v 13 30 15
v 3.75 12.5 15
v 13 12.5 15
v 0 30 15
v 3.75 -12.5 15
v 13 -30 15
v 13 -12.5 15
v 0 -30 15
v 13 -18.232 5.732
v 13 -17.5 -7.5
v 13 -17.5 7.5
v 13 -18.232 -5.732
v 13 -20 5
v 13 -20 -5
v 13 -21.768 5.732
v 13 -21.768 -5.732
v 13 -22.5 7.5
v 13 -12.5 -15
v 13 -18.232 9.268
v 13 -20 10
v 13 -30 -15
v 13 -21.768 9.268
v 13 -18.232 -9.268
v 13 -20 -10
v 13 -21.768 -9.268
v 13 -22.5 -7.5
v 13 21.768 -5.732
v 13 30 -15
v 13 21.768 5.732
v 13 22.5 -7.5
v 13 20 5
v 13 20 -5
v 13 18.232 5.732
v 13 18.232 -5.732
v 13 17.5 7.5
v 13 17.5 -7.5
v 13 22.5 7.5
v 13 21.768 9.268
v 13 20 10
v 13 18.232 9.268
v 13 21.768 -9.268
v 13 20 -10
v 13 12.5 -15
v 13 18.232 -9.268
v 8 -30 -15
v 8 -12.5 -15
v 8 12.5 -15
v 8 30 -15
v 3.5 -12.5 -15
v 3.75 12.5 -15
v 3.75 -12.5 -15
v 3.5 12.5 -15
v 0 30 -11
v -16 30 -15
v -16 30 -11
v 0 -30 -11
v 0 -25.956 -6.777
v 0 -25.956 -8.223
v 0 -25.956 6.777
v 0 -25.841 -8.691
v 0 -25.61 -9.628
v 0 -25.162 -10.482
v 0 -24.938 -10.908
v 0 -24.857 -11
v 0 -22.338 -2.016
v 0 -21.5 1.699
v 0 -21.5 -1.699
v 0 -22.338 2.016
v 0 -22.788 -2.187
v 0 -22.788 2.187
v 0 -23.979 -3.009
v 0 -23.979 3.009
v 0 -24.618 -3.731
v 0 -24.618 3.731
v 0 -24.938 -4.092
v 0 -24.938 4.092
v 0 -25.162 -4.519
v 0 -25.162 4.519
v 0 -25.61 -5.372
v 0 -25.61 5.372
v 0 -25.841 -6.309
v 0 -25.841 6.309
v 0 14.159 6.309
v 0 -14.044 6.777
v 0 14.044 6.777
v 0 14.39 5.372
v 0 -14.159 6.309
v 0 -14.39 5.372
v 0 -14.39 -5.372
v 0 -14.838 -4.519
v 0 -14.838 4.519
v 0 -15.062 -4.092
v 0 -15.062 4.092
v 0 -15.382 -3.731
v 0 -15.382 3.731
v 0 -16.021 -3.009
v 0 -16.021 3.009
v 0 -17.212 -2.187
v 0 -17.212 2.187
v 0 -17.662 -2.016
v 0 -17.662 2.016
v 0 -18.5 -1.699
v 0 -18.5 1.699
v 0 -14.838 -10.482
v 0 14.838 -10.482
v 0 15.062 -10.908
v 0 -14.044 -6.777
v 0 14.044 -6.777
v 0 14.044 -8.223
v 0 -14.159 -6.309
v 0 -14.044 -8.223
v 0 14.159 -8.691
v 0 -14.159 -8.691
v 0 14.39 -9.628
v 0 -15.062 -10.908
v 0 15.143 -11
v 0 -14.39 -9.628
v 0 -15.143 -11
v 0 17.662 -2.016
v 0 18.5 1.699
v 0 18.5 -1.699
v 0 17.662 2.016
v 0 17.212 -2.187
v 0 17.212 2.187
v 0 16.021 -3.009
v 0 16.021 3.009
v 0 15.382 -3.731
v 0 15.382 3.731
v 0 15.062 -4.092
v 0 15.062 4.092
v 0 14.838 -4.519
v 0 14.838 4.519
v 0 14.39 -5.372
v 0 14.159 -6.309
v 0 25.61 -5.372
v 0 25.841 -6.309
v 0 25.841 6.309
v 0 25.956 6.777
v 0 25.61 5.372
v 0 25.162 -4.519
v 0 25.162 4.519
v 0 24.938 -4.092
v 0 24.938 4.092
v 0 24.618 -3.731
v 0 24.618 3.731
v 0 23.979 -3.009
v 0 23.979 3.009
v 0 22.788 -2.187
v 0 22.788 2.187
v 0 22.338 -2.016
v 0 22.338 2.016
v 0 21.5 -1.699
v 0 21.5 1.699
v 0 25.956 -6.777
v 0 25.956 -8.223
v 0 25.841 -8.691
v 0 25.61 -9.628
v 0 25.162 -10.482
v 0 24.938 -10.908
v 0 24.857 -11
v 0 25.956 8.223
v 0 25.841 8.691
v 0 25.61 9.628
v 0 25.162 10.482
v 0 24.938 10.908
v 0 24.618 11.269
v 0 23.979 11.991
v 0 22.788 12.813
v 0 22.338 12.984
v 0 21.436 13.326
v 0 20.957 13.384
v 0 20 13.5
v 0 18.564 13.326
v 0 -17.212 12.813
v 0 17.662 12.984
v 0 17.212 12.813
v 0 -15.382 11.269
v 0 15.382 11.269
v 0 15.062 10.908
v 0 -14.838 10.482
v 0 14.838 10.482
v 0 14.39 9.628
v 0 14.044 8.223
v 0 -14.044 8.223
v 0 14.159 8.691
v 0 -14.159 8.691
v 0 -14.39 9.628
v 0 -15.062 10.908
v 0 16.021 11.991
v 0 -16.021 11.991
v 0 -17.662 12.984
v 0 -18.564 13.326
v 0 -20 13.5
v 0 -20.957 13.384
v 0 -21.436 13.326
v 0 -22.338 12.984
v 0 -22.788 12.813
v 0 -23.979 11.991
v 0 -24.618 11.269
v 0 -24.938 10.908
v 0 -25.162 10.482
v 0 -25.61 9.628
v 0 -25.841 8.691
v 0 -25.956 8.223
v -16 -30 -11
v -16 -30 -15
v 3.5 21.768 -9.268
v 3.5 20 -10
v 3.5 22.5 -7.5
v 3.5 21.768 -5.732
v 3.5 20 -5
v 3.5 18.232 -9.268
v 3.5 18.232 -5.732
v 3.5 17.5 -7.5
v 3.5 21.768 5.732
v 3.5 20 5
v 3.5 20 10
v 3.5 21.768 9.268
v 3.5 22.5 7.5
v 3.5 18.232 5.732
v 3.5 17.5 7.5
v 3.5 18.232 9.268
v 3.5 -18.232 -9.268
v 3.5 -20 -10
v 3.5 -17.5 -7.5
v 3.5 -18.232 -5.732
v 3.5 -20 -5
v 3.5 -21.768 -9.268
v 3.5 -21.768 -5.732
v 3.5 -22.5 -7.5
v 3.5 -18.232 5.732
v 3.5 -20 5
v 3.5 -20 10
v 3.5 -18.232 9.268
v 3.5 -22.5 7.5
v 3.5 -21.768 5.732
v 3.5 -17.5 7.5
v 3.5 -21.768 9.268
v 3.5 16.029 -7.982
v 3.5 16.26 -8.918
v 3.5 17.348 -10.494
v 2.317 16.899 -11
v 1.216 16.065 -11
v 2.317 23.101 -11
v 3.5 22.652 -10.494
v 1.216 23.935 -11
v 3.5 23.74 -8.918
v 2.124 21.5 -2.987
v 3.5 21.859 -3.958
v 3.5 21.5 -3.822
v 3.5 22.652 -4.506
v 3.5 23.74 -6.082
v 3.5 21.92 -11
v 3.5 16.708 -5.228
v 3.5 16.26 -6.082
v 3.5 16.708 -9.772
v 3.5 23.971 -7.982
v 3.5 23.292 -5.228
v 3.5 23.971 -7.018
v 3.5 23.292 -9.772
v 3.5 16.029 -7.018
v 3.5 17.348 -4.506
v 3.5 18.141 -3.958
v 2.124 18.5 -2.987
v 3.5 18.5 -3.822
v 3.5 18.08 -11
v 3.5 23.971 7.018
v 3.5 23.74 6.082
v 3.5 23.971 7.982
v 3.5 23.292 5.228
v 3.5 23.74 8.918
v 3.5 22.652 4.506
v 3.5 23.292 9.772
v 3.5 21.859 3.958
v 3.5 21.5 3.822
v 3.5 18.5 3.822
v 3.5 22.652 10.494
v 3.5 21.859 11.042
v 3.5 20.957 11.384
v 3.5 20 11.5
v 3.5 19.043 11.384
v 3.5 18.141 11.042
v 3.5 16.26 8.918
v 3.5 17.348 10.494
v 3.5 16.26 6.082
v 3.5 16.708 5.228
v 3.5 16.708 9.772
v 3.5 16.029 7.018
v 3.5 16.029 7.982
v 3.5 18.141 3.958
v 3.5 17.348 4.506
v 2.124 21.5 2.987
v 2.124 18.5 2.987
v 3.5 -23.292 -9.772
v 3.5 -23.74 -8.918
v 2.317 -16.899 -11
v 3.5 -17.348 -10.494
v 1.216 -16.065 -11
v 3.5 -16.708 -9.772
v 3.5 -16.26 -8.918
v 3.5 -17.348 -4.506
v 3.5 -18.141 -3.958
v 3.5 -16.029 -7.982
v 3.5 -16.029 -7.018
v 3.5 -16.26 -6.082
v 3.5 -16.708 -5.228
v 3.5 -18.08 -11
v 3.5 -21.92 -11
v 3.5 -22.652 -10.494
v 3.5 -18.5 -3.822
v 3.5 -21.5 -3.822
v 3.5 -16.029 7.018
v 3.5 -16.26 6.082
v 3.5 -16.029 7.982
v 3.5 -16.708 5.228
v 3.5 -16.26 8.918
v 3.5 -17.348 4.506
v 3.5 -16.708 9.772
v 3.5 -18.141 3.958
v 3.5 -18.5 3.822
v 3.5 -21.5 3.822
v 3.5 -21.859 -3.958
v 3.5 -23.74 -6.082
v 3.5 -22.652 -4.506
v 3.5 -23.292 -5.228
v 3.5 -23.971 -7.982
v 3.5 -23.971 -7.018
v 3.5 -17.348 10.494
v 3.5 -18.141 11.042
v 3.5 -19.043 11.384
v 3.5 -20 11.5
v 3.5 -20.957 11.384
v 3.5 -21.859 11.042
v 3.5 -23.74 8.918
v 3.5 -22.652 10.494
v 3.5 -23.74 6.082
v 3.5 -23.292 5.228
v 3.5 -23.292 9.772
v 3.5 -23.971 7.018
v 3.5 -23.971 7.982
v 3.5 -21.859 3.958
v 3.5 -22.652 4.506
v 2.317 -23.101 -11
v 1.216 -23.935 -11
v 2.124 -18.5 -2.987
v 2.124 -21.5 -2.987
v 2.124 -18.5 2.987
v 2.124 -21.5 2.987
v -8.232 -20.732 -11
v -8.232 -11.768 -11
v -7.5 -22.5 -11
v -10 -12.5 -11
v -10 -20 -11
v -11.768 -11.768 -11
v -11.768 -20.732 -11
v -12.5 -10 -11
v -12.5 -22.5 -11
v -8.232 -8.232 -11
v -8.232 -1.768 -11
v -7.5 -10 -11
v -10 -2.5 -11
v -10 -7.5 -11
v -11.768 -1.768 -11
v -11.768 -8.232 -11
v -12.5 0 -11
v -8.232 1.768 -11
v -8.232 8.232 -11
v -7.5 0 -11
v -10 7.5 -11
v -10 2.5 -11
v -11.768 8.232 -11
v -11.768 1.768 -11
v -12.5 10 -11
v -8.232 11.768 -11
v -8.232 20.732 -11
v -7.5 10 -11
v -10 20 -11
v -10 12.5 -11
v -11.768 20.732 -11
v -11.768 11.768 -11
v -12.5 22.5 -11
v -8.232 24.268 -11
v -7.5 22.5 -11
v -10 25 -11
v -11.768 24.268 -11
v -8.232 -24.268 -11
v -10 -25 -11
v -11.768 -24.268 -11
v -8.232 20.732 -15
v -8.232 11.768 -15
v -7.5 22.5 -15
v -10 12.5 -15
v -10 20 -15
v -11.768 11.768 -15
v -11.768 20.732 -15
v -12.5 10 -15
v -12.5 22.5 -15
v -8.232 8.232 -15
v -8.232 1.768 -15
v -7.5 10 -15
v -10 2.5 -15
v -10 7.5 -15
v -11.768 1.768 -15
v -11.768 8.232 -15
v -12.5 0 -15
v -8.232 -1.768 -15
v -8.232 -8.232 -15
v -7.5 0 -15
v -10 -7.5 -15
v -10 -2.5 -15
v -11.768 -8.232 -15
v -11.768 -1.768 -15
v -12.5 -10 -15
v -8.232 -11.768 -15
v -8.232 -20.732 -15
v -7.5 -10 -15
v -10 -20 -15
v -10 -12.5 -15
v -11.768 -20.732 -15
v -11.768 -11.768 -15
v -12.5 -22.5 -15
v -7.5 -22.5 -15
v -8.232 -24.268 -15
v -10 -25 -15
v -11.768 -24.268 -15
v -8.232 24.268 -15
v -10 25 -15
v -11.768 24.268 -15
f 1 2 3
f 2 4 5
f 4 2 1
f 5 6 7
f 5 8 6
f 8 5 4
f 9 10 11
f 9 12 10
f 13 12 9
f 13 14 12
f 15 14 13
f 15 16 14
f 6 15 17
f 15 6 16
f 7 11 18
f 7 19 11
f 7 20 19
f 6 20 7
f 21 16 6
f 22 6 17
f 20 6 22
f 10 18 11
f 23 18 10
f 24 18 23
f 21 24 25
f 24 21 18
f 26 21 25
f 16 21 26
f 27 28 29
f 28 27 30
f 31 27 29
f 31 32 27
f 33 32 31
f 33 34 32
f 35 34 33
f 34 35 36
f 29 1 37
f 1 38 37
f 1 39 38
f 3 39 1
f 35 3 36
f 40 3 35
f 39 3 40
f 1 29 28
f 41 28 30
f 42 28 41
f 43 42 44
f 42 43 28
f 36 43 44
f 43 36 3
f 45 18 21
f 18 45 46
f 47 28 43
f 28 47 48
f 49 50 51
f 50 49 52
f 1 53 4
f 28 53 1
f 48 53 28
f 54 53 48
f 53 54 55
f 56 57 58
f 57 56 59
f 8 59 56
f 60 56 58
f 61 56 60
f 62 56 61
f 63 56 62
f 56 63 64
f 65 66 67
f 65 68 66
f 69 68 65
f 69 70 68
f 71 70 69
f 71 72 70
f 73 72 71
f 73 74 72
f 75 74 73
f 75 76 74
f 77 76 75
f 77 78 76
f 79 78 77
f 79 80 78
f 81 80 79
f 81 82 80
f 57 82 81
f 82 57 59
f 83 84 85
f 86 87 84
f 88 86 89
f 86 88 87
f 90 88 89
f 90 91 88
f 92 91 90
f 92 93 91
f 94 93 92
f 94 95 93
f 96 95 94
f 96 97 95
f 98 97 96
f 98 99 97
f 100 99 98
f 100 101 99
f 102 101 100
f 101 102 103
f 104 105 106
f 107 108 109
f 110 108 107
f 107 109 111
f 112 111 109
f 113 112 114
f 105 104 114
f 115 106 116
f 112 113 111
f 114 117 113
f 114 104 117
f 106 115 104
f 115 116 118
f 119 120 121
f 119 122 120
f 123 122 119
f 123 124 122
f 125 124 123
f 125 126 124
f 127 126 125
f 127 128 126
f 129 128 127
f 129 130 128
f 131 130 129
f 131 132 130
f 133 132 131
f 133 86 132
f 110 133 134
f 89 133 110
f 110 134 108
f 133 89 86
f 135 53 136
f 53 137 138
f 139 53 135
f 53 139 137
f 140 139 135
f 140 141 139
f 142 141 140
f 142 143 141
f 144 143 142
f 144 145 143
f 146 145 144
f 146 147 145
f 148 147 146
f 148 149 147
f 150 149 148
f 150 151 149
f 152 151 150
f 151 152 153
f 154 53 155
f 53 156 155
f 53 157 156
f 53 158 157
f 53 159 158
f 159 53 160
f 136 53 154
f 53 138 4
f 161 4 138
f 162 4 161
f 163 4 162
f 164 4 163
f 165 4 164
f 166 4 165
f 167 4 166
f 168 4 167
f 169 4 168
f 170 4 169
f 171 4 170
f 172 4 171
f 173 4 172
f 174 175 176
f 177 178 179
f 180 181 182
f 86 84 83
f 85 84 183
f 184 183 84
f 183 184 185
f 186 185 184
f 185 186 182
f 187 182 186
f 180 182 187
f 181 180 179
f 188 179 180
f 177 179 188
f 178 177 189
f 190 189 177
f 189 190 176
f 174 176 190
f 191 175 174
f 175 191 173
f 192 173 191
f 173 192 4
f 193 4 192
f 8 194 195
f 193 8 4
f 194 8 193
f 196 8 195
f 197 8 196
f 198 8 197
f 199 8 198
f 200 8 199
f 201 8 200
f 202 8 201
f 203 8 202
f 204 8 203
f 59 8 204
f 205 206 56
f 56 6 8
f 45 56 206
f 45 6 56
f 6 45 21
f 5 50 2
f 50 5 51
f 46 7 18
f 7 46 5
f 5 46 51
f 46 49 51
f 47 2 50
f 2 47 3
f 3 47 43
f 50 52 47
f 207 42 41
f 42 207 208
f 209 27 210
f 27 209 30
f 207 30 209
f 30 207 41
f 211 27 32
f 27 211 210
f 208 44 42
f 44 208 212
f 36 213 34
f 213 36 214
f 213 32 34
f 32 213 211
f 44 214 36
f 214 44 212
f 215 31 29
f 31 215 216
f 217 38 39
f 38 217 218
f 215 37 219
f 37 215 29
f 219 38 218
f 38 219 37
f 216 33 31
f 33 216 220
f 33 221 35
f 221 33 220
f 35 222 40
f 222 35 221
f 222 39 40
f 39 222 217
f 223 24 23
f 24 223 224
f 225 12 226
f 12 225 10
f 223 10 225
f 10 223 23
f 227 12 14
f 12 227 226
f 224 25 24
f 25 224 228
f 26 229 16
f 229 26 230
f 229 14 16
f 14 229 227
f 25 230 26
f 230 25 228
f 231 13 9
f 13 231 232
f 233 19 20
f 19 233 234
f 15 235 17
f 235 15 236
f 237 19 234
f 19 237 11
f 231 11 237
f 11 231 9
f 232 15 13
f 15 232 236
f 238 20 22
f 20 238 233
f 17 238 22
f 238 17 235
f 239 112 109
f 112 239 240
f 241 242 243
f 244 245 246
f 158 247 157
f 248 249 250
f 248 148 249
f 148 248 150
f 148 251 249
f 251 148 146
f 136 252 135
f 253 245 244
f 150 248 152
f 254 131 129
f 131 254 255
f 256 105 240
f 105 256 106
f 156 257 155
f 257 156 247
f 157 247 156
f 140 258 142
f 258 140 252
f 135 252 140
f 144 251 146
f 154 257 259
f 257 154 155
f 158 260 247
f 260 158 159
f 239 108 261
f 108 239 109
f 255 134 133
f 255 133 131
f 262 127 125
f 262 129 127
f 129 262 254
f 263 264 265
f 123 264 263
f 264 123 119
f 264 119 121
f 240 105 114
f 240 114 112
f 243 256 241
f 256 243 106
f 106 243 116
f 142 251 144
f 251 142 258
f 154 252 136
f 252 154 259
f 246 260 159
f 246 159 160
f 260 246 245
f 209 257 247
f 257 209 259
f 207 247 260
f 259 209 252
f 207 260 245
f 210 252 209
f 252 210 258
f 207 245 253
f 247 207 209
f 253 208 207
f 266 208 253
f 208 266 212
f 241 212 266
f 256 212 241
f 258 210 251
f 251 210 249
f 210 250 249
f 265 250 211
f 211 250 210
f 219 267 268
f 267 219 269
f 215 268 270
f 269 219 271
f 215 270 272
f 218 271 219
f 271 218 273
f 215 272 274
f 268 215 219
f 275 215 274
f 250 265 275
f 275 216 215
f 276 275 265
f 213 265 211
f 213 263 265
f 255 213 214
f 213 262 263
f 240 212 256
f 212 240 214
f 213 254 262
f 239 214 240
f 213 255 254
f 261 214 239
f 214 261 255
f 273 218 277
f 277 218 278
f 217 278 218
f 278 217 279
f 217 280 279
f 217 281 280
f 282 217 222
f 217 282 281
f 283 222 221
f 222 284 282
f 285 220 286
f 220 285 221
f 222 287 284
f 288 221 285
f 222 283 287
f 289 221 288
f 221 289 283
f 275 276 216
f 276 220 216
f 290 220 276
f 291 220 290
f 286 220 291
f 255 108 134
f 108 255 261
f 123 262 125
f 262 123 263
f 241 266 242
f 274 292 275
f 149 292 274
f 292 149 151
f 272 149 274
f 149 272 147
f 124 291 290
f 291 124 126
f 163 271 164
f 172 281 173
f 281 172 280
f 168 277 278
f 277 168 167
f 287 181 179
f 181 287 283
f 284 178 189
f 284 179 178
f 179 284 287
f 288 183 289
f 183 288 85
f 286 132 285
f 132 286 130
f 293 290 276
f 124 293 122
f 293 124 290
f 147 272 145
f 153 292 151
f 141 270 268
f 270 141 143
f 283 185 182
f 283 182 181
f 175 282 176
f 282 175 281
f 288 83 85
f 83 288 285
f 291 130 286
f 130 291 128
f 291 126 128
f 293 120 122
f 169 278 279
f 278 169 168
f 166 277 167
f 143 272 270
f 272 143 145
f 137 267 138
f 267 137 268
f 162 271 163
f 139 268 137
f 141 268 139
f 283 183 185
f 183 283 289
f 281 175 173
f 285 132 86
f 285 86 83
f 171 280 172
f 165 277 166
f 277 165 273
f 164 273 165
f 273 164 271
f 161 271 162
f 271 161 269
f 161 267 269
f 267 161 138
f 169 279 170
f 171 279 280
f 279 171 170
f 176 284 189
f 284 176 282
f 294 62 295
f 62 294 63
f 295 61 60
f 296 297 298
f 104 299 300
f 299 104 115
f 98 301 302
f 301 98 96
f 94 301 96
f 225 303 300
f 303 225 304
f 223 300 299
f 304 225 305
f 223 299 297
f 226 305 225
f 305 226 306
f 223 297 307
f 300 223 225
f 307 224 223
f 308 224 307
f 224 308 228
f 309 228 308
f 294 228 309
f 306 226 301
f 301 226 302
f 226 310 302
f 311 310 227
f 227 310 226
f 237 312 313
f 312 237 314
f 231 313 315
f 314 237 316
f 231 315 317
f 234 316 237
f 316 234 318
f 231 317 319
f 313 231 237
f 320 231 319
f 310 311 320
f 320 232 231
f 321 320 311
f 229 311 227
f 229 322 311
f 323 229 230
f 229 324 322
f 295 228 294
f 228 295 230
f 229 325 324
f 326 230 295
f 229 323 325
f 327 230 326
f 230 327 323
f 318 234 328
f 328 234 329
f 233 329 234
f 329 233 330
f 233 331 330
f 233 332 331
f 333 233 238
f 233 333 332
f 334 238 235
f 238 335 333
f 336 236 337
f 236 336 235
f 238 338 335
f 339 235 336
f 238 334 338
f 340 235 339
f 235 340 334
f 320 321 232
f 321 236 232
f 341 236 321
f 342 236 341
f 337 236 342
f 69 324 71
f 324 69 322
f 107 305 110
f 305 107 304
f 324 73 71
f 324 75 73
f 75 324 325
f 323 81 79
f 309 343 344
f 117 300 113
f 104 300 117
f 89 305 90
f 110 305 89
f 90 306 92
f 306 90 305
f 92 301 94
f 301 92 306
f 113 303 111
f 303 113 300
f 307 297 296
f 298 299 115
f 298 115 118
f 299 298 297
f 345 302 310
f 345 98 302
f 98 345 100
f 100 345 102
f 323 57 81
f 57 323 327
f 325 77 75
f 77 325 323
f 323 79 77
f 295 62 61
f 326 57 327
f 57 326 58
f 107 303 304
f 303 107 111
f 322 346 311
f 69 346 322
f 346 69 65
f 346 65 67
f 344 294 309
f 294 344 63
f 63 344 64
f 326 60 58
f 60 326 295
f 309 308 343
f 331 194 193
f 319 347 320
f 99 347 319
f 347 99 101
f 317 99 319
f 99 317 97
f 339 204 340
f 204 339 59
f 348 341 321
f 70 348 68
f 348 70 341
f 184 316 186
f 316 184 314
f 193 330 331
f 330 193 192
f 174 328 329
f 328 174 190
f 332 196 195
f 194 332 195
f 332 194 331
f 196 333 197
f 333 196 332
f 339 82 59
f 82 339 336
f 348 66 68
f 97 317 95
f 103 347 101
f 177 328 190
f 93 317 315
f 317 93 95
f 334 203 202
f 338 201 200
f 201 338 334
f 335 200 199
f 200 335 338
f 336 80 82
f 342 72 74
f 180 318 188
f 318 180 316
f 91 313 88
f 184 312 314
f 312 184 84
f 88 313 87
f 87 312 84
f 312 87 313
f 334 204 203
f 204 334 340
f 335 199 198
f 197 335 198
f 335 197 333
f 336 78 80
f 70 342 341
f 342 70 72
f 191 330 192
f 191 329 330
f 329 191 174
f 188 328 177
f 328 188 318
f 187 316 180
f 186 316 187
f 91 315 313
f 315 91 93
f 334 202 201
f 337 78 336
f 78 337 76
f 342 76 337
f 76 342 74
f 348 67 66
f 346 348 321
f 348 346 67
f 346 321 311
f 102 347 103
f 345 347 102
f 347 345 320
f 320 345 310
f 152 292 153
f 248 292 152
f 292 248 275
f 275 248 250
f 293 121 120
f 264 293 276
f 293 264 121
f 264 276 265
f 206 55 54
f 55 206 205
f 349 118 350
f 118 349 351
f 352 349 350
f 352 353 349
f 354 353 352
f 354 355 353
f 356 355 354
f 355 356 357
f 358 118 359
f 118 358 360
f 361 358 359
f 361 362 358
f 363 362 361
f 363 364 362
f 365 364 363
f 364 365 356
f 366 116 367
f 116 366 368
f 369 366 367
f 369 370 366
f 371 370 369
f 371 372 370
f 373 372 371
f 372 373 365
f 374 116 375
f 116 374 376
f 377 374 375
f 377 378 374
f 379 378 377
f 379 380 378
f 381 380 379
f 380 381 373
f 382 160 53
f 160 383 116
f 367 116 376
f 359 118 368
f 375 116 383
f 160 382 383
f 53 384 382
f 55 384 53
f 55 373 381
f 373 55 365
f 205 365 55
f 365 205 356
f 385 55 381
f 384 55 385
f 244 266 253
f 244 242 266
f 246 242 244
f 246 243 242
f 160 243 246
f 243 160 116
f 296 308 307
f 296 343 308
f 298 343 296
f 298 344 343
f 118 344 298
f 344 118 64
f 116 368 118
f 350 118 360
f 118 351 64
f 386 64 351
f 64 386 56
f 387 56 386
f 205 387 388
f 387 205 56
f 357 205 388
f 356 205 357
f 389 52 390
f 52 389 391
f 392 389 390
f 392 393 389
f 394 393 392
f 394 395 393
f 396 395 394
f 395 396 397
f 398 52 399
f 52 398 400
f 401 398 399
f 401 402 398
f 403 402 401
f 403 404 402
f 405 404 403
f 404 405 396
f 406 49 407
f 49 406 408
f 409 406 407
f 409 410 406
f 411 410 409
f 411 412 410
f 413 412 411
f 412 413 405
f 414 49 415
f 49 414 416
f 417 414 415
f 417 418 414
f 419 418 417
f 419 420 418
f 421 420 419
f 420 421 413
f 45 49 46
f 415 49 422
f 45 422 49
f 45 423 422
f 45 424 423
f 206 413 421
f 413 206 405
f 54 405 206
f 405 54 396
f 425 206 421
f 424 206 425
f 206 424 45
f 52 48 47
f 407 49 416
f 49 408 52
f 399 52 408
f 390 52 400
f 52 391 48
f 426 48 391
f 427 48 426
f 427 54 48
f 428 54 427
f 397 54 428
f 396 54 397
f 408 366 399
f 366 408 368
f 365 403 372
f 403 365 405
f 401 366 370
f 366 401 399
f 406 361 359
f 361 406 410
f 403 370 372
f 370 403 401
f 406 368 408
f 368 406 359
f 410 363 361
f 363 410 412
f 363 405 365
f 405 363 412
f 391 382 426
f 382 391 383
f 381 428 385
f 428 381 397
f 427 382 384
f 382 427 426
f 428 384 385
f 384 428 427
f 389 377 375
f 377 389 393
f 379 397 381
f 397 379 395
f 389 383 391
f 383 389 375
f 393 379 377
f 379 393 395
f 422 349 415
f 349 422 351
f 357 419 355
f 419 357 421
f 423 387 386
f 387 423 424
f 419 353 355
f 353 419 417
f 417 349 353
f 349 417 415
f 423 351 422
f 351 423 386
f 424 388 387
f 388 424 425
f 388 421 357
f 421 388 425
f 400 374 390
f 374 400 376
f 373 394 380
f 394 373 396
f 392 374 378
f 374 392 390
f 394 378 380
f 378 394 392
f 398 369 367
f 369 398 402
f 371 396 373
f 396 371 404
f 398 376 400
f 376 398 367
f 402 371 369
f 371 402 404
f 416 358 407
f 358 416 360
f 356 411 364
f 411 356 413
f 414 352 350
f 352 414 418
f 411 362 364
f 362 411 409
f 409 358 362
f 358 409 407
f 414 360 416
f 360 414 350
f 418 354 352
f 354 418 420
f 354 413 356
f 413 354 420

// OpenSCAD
// 90 d Plate with out tabs and ends
//block shape
x=30;
y=60;
z=13;

// track channel
f=x+10;
g=25;
h=9.5;
// block top
e=20;
r=y+10;
t=16.5;

// spacing of screw holes
cx=15;
cy=40;
dx=15;
dy=45;

// rotation
gx=90;

rotate([0,gx,0])
difference()
{
    translate([0,0,z]/2) cube ([x,y,z],center=true);
    translate([0,0,z+4]/2) cube([f,g,h],center=true);
 //   translate([49,0,z+11]/2) cube ([e,r,t],center=true);
       // translate([-49,0,z+11]/2) cube ([e,r,t],center=true);

  translate([cx,cy,0]/2) cylinder(d=5, h=50,  center=true);
  translate([-cx,cy,0]/2) cylinder(d=5, h=50,  center=true);
    translate([cx,-cy,0]/2) cylinder(d=5, h=50,  center=true);
    translate([-cx,-cy,0]/2) cylinder(d=5, h=50,  center=true);
      translate([cx,cy,0]/2)  cylinder(d1=16, d2=8, h=7,  center=true);
 translate([-cx,cy,0]/2) cylinder(d1=16, d2=8, h=7, center=true);
    translate([cx,-cy,0]/2) cylinder(d1=16, d2=8, h=7,  center=true);
    translate([-cx,-cy,0]/2) cylinder(d1=16, d2=8, h=7,  center=true);    
// zip tie knotches    
    translate([0,-cy/2,11.5-10]) cube([18,3,4],center=true);
    translate([0,cy/2,11.5-10]) cube([18,3,4],center=true);
// removal knotches
//       translate([0,-(6.8+51)/2,11.5]) cube([8,3,4],center=true);
//   translate([0,(6.8+51)/2,11.5-10]) cube([8,3,4],center=true);
//   translate([(6.8+51)/2,0,11.5-11]) cube([3,8,2],center=true);
  // translate([-(6.8+51)/2,0,11.5-11]) cube([3,8,2],center=true);
}

//rotate([0,gx,0])
difference ()
{
    //plate for 5 bolt holes
    translate([-4,0,-13]) cube([24,60,4],center=true);
    translate([-10,0,-8])       cylinder(d=5, h=60, center=true);
      translate([-10,22.5,-8])cylinder(d=5, h=60, center=true);
      translate([-10,-22.5,-8])    cylinder(d=5, h=60, center=true);
        translate([-10,10,-8])    cylinder(d=5, h=60, center=true);
      translate([-10,-10,-8])    cylinder(d=5, h=60, center=true);
   //notch to keep opening for C-channel
    translate([6,0,-15]) cube([5,25,15],center=true);
}

 
